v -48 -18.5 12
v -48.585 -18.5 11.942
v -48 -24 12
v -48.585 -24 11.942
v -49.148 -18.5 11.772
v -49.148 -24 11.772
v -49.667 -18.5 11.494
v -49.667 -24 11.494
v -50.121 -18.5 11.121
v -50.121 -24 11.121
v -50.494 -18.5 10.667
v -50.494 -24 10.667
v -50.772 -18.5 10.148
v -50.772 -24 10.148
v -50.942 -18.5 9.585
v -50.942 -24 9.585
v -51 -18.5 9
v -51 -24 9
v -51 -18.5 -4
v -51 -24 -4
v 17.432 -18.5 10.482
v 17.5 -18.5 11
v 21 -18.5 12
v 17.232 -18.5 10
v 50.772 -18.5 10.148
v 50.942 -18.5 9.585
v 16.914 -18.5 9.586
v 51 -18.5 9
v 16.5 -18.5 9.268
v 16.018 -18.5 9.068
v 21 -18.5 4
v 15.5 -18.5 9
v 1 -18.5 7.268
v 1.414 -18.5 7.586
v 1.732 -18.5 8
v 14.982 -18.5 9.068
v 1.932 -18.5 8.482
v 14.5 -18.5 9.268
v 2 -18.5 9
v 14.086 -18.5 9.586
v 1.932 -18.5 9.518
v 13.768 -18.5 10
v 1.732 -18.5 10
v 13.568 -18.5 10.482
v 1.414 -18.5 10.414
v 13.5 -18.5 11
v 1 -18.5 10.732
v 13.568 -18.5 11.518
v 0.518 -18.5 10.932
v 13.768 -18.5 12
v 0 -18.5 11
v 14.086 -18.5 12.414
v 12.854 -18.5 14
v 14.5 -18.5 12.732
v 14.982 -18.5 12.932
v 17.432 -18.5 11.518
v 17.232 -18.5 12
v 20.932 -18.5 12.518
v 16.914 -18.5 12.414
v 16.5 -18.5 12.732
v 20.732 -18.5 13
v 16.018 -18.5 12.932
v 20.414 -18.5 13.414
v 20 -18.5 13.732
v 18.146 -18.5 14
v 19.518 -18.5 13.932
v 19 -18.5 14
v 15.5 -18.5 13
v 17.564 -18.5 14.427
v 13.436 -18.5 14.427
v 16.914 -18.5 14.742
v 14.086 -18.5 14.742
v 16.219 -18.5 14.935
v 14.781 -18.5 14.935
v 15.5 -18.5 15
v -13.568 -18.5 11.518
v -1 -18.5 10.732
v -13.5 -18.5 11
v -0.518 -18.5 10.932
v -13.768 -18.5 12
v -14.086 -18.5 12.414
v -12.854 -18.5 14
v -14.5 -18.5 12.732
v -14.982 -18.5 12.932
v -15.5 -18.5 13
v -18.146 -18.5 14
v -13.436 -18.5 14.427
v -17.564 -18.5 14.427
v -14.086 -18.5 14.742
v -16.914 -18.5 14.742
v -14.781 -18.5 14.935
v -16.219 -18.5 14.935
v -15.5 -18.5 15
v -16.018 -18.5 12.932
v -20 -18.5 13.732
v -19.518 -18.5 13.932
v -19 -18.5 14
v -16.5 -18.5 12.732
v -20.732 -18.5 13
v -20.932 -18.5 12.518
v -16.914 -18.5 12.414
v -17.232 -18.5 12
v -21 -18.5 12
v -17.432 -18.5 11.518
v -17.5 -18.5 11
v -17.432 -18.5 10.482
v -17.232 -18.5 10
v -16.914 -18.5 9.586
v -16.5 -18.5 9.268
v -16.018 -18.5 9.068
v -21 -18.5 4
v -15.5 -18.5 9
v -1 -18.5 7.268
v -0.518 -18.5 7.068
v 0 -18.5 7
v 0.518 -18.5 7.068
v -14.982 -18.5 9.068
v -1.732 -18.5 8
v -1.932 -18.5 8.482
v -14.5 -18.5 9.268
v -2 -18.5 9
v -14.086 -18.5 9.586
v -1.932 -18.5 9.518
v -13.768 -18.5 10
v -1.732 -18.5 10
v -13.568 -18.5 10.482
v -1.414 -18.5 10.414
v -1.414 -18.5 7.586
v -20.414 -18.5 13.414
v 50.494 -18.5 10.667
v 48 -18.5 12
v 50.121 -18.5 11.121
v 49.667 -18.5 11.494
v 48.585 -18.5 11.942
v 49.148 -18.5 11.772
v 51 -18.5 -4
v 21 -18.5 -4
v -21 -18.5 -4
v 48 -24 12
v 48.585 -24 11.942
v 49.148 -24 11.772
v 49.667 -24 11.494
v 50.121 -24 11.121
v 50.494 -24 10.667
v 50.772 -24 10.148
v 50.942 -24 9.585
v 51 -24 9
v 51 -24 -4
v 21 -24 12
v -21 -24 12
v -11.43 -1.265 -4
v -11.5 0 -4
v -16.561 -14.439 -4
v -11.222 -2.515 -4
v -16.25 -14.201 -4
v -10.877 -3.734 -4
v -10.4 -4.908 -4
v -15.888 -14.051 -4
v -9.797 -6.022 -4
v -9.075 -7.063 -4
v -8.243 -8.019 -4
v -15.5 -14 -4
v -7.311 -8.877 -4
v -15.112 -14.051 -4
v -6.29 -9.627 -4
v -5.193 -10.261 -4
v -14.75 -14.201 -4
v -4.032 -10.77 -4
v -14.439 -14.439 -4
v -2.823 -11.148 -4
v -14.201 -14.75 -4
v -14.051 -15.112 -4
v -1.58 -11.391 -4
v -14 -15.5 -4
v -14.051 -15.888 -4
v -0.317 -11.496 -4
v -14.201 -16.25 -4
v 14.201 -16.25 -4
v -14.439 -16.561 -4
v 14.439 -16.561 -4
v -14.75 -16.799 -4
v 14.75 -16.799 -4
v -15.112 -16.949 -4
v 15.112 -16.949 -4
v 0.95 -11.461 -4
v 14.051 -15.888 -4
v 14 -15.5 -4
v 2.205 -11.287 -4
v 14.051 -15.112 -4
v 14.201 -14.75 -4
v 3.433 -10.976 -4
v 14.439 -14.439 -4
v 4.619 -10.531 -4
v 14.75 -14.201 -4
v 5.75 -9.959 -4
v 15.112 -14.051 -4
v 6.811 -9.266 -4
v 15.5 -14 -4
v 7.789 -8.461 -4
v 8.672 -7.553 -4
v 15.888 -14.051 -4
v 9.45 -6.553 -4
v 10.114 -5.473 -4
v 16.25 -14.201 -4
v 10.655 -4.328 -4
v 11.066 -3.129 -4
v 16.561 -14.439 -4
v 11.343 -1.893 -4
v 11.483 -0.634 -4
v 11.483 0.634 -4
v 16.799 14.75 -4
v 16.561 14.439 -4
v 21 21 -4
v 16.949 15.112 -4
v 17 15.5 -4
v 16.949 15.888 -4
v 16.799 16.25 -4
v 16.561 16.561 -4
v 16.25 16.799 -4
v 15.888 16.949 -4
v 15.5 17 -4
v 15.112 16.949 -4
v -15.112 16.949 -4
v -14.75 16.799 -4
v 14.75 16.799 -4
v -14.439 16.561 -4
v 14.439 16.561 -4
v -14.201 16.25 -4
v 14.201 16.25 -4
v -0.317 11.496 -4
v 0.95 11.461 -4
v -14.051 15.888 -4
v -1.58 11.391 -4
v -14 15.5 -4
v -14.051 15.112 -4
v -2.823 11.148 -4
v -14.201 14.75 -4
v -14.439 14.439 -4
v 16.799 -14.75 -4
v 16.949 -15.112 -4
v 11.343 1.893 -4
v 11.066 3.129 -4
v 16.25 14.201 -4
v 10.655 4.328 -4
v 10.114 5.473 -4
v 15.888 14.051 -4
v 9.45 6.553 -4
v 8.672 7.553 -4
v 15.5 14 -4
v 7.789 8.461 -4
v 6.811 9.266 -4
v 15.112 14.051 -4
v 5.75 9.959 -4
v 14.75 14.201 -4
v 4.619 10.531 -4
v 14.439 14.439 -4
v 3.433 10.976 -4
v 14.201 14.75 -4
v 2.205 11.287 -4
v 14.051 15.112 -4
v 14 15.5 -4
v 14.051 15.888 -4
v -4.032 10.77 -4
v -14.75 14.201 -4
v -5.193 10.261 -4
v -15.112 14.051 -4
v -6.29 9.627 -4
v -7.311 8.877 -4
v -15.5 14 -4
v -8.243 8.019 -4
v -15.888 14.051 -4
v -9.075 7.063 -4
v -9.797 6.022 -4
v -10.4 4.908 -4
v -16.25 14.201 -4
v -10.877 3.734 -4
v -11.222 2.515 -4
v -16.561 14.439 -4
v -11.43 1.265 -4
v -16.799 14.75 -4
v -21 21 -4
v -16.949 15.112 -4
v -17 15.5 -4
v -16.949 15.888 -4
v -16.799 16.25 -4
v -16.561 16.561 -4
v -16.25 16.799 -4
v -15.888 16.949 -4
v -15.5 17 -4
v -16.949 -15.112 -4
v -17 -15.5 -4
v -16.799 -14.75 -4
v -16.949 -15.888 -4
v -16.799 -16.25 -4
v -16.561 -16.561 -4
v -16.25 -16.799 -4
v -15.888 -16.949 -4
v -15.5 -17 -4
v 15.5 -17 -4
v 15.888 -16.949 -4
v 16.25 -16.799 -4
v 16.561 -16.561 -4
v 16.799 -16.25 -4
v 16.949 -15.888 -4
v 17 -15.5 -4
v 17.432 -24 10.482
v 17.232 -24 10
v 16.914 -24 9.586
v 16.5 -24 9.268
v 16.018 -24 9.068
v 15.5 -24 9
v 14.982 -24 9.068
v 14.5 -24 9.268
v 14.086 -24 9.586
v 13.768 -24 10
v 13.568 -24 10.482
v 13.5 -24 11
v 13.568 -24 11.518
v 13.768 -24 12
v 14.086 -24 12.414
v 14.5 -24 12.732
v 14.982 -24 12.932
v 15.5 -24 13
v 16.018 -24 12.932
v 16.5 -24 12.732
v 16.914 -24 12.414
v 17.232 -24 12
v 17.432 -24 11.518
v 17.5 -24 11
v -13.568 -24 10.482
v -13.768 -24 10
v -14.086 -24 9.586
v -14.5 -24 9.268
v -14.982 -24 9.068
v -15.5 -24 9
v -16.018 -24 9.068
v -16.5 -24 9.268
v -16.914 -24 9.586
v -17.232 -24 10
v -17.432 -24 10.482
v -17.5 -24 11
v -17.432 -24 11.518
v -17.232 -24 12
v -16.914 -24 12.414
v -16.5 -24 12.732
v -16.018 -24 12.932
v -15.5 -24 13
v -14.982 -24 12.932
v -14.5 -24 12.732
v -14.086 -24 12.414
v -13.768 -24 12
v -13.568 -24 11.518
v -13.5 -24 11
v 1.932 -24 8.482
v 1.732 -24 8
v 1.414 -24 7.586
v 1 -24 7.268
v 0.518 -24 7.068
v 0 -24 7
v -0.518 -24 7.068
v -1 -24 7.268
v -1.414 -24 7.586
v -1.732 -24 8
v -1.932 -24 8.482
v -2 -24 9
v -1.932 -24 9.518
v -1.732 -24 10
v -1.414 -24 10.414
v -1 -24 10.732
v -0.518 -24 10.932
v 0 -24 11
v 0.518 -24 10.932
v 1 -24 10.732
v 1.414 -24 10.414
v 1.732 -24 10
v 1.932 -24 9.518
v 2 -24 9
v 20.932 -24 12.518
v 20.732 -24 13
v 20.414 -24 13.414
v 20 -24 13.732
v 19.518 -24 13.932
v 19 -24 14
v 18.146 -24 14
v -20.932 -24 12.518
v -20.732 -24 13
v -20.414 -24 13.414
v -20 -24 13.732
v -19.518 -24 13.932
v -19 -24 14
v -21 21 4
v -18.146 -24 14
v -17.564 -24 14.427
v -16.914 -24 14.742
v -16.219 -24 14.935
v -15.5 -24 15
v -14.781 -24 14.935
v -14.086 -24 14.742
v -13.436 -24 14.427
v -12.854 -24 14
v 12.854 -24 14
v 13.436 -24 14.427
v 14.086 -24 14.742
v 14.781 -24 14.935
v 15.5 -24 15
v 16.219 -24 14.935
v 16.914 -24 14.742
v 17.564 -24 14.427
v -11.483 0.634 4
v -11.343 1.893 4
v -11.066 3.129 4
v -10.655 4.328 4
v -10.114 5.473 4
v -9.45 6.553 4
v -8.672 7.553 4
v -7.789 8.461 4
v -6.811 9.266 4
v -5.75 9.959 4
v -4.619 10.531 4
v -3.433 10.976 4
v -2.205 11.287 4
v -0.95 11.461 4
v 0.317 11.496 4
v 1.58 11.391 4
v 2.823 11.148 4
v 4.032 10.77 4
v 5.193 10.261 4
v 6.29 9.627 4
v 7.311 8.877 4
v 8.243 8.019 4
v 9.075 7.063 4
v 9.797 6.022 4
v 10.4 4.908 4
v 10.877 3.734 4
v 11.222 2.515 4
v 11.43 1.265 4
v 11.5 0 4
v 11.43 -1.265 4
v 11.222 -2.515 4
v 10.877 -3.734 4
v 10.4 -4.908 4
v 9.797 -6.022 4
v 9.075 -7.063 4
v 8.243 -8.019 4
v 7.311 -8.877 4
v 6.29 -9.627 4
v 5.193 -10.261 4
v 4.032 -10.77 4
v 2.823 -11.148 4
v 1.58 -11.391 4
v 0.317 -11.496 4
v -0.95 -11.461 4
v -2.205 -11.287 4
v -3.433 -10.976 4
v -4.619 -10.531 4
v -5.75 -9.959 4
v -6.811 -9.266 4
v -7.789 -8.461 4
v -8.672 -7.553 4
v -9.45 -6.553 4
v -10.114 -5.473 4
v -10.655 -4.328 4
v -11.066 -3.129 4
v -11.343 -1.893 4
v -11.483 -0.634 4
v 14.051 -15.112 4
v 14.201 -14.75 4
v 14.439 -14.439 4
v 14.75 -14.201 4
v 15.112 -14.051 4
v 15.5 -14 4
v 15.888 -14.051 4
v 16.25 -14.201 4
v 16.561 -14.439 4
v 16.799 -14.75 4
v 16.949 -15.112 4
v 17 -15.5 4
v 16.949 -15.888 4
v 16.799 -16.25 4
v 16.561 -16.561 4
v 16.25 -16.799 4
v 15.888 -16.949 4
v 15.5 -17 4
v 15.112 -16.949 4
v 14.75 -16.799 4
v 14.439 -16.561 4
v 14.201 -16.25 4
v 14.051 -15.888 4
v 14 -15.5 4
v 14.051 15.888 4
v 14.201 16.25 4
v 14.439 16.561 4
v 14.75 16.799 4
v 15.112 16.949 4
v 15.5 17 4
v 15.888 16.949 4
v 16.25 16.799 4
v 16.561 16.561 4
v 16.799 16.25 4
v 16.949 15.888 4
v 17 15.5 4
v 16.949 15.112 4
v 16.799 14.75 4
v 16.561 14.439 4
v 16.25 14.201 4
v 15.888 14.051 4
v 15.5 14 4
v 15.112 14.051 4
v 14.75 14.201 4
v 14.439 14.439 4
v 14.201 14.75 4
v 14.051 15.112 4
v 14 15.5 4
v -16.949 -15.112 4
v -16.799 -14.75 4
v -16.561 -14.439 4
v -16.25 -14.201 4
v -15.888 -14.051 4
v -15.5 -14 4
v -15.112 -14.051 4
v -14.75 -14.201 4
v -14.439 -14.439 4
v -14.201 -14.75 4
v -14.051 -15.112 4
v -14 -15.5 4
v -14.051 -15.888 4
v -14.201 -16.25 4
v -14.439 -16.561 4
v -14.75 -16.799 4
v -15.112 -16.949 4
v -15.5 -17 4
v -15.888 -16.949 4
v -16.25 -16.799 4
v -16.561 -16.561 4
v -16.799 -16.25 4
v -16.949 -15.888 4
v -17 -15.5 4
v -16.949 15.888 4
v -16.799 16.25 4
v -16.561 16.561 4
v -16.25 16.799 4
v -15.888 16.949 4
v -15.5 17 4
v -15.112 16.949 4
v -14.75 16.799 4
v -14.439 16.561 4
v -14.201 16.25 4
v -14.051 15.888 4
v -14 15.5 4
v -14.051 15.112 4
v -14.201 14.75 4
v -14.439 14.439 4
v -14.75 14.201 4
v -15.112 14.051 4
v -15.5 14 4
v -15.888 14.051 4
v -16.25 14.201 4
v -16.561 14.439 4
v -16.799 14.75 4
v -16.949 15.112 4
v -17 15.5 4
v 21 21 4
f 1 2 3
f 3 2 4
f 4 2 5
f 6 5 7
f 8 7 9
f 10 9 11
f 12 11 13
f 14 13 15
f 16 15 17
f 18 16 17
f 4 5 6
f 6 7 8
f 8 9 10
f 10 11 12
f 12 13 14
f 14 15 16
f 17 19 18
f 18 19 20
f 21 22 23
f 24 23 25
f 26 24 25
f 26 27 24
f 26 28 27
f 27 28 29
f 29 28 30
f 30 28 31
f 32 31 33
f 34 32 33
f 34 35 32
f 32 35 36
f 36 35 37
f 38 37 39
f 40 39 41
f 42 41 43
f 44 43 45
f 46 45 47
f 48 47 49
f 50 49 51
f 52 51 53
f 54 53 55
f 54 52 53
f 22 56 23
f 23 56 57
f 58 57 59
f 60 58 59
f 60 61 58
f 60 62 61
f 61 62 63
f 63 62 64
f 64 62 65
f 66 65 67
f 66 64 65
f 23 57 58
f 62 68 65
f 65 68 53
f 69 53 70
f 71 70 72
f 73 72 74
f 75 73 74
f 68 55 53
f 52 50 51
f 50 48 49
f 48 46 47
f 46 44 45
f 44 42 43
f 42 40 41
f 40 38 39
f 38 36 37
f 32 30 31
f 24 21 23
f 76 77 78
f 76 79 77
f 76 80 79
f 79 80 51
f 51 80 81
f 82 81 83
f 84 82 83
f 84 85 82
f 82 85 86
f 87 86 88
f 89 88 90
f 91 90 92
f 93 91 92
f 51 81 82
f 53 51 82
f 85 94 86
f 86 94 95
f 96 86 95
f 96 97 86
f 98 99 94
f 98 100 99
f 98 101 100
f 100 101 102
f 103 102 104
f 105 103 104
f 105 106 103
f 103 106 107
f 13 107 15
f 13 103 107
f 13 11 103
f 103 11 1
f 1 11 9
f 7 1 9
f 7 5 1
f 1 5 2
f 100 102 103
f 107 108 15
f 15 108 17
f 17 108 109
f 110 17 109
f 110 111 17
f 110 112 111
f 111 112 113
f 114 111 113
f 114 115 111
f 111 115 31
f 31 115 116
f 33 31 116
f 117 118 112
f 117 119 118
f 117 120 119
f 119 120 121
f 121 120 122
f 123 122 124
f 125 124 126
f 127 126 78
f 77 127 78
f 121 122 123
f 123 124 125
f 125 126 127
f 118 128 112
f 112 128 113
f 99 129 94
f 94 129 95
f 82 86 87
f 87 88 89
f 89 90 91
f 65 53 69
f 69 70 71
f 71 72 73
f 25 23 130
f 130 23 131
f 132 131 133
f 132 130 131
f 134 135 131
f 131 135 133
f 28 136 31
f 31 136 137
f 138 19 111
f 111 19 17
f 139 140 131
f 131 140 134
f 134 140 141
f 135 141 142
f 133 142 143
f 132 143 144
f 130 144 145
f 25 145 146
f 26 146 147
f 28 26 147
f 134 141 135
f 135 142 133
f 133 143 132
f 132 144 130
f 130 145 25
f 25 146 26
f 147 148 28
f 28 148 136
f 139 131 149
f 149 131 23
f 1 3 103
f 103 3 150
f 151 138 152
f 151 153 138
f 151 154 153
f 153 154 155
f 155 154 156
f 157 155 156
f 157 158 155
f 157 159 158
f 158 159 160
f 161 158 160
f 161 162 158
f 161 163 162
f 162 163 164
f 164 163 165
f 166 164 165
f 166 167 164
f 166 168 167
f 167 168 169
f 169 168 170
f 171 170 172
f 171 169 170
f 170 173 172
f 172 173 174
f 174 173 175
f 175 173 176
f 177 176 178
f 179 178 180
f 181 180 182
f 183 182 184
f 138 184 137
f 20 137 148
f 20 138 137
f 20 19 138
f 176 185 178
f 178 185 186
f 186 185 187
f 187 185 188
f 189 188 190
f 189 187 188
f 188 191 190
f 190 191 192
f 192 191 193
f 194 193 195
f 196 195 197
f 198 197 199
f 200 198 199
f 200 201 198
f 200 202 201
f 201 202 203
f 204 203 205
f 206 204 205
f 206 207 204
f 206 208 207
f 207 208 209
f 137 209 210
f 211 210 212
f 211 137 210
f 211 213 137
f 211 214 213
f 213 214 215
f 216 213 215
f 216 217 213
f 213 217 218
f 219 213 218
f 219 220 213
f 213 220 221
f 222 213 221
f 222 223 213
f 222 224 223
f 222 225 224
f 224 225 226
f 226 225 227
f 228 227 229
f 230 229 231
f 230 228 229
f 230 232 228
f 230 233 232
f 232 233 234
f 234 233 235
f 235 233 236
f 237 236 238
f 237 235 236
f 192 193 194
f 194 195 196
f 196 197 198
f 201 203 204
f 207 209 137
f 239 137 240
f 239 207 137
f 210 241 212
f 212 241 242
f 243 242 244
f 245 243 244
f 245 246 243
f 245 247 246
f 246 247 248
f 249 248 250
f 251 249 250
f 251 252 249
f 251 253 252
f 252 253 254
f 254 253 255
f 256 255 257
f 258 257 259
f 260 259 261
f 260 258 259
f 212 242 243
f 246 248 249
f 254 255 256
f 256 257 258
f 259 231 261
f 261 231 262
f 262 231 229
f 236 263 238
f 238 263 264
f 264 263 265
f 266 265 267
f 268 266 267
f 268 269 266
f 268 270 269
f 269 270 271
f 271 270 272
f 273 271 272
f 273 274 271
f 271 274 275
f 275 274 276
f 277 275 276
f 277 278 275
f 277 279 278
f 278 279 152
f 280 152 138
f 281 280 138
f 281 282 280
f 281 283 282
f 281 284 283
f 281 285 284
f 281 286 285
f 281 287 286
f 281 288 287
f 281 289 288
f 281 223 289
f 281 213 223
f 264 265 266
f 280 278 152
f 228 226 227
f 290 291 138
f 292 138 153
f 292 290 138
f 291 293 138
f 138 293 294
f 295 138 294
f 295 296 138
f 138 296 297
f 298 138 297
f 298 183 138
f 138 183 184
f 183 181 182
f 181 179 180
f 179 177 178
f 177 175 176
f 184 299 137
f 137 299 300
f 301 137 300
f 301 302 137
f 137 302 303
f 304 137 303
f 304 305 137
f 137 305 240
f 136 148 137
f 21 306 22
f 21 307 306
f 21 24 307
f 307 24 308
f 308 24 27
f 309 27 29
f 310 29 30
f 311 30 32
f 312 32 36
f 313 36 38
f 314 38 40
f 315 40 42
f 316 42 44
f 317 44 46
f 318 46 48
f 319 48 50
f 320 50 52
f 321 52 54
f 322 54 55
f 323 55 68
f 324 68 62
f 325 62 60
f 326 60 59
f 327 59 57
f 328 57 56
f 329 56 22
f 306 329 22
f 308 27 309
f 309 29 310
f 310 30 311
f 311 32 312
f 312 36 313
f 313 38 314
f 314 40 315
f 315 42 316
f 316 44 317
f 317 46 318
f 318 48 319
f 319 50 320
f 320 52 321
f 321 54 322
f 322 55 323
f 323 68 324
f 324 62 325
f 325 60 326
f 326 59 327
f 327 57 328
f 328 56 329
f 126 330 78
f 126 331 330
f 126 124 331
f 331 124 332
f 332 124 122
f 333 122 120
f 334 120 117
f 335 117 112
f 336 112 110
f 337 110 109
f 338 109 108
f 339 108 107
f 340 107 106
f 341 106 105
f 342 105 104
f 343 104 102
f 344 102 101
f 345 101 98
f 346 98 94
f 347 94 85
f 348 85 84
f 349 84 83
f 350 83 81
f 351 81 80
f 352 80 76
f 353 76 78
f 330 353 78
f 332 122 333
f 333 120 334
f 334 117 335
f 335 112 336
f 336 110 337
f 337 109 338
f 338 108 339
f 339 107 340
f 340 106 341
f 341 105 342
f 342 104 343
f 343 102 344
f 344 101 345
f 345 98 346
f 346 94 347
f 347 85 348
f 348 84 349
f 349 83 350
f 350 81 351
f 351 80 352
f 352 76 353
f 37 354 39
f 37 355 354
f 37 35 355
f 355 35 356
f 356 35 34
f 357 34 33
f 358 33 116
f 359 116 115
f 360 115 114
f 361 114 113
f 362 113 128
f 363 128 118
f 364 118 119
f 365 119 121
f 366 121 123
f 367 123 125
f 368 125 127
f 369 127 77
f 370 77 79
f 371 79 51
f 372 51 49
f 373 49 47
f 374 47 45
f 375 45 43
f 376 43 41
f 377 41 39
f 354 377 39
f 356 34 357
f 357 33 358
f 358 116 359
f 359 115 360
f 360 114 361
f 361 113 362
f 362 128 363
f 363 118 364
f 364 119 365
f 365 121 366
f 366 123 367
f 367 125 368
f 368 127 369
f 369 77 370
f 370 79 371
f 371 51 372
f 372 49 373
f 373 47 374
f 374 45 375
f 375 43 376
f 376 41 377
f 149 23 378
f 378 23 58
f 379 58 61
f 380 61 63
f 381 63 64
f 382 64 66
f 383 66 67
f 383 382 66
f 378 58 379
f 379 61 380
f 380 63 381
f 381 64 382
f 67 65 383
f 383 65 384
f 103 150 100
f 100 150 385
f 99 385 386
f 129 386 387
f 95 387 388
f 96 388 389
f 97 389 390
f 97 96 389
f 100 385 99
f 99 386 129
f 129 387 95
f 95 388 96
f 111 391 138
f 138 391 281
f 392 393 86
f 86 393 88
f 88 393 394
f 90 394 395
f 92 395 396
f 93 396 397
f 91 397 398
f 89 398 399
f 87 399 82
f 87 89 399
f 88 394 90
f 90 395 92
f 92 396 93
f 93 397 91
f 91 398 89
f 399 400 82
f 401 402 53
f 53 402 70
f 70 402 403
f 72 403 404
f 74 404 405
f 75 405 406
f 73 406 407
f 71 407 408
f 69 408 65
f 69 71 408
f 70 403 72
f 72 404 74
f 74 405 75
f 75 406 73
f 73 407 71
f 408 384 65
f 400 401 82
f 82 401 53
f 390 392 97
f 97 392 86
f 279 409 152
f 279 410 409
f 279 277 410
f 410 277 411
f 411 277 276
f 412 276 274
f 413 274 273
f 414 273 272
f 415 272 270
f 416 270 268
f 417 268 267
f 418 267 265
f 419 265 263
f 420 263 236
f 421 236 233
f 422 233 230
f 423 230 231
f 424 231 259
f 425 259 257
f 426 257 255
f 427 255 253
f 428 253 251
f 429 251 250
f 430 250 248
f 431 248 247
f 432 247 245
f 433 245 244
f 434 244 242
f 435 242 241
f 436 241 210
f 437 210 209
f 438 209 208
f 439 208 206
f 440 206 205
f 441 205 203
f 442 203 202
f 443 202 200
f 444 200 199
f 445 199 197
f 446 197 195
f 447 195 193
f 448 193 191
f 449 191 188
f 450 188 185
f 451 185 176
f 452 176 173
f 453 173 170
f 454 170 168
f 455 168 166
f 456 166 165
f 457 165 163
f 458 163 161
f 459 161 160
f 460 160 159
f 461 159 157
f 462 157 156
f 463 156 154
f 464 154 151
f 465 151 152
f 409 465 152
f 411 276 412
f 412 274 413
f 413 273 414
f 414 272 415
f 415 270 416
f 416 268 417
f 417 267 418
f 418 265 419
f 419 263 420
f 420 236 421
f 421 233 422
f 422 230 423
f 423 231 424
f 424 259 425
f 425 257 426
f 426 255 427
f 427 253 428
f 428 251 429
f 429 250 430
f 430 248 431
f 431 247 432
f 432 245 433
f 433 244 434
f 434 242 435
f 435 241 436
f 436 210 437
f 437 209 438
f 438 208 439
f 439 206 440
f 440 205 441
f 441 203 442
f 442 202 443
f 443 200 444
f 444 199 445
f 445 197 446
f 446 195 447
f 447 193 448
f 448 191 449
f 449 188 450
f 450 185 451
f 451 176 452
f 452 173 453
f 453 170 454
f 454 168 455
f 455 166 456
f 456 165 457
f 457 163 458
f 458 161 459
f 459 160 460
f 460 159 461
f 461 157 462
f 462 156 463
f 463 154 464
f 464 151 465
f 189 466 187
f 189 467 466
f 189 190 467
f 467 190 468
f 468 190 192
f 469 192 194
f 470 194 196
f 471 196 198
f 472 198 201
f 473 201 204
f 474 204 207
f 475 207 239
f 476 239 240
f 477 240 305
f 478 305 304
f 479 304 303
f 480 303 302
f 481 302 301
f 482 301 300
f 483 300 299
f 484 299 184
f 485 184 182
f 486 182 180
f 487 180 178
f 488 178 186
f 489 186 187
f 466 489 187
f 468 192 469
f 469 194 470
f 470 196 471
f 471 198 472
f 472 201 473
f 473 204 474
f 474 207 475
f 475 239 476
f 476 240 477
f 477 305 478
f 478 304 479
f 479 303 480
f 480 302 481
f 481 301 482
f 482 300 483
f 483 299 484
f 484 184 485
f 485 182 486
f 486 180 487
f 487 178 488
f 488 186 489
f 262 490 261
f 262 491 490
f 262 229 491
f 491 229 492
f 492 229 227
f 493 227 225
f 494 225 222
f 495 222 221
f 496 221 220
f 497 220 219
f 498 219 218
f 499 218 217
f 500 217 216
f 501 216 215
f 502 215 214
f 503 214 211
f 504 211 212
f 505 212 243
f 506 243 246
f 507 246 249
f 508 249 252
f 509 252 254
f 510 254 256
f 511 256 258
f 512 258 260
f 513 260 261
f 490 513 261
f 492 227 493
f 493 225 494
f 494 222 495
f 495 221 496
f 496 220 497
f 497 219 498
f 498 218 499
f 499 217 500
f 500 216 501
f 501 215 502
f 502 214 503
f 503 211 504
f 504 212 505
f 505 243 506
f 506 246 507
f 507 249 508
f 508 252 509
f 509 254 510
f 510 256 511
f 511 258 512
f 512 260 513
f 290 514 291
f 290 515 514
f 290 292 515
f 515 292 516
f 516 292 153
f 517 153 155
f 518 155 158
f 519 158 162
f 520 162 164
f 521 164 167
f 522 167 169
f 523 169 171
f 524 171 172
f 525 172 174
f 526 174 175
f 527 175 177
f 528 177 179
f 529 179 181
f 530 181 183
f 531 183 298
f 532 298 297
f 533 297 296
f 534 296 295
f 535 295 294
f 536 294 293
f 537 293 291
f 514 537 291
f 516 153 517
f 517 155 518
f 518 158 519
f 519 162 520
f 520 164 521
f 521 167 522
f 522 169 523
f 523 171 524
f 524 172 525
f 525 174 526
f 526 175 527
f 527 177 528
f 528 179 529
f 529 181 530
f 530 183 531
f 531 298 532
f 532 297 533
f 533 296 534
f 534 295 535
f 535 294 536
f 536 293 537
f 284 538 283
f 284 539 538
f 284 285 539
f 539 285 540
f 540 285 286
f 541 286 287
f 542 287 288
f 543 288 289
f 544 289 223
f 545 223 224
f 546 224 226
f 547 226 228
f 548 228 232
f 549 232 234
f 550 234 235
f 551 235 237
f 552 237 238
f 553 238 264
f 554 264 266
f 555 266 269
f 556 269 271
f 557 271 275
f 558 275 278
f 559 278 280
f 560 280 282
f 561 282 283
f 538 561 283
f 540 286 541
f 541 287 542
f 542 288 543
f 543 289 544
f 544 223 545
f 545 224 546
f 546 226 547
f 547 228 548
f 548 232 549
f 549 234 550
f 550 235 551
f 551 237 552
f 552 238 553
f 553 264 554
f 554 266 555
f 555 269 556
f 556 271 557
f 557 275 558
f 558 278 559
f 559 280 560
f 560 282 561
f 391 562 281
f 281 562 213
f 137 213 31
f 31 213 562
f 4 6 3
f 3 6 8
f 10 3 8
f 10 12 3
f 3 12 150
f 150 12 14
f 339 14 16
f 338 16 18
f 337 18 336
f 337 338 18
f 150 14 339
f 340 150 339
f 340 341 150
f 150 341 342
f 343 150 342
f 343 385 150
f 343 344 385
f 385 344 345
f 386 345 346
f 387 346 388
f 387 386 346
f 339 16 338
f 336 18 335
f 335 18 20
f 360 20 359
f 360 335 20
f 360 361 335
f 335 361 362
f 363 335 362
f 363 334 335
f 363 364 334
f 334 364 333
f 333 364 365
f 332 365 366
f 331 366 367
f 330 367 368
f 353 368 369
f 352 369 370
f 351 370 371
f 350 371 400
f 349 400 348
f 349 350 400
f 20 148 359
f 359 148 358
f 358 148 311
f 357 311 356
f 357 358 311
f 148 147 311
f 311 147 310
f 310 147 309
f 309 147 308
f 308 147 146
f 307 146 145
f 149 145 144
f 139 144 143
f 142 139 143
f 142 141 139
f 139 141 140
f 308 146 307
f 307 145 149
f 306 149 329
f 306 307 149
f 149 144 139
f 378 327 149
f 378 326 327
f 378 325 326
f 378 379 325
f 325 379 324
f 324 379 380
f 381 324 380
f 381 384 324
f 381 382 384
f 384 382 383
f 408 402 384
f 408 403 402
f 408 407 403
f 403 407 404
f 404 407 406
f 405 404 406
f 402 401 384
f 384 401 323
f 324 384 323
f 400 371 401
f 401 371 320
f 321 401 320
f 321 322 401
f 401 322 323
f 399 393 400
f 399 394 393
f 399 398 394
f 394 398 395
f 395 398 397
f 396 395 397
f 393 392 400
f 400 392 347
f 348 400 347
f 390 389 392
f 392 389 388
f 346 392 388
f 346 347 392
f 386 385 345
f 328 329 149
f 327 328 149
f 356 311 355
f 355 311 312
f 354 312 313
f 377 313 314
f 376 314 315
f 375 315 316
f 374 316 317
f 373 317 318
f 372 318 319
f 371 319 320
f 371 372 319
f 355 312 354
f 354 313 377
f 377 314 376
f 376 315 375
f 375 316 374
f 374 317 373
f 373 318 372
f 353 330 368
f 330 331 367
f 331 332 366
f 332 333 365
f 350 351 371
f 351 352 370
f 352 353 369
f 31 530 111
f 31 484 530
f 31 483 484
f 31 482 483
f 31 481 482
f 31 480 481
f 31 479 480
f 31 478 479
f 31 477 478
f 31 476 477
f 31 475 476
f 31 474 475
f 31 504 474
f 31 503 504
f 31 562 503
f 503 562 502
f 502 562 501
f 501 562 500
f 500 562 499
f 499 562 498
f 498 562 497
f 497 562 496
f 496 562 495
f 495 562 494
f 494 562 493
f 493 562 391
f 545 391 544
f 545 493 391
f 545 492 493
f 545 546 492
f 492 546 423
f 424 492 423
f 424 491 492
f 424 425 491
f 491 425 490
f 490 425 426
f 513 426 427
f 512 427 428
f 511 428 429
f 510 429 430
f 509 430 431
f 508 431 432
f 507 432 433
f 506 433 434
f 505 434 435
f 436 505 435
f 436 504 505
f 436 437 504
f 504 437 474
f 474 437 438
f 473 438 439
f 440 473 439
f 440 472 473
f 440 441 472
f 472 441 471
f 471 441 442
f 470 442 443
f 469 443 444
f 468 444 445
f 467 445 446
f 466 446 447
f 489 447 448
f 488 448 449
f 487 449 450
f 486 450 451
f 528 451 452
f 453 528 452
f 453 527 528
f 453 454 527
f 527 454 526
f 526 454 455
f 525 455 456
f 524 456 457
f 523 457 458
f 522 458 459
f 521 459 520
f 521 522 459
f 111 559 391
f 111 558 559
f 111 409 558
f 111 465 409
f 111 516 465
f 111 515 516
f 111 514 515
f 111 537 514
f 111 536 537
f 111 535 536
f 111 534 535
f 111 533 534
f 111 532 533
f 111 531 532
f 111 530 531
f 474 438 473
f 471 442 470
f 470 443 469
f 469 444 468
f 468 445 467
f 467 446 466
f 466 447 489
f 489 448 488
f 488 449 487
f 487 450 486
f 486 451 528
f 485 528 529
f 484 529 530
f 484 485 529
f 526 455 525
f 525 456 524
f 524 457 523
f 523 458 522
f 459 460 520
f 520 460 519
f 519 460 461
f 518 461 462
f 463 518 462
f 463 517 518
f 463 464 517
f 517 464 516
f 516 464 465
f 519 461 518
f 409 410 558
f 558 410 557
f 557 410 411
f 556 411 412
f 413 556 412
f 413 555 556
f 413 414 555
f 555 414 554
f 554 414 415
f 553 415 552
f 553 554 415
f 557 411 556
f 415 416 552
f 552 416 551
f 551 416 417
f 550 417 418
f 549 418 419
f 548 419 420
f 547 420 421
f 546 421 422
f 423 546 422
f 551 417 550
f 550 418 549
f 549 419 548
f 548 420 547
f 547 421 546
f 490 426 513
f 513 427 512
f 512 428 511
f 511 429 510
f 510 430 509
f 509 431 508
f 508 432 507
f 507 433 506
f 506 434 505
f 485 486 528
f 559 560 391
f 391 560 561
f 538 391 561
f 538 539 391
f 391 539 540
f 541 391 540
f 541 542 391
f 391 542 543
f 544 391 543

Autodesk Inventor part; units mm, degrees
ref_plane "YZ Plane" through (0, 0, 0) normal (1, 0, 0) x (0, 1, 0)
ref_plane "XZ Plane" through (0, 0, 0) normal (0, 1, 0) x (-1, 0, 0)
ref_plane "XY Plane" through (0, 0, 0) normal (0, 0, 1) x (1, 0, 0)
sketch "Sketch1" plane through (0, 0, 0) normal (0, 0, 1) x (1, 0, 0)
  circle A0 centre (0, 0) radius 11.5
  circle A1 centre (-15.5, 15.5) radius 1.5
  circle A2 centre (-15.5, -15.5) radius 1.5
  circle A3 centre (15.5, 15.5) radius 1.5
  circle A4 centre (15.5, -15.5) radius 1.5
  line L0 (-21, -24) -> (21, -24)
  line L1 (0, 20) -> (4.5462, 20) construction
  line L2 (-21, 21) -> (-1, 21)
  line L3 (1, 21) -> (21, 21)
  line L4 (-21, 21) -> (-21, 5.9161)
  line L5 (-21, -5.9161) -> (-21, -24)
  line L6 (21, 21) -> (21, 5.9161)
  line L7 (21, -5.9161) -> (21, -24)
  line L8 (-1.865, 21) -> (1.6498, 21)
  line L9 (-21, 8.451) -> (-21, -8.8551)
  line L10 (21, 10.9387) -> (21, -8.8551)
  dimension "d0" = 23
  dimension "d1" = 3
  dimension "d2" = 3
  dimension "d3" = 24
  dimension "d5" = 8.5
extrude "Extrusion1" add sketch "Sketch1" along normal blind 4
sketch "Sketch2" plane through (0, 0, 4) normal (0, 0, 1) x (1, 0, 0)
  line L0 (-21, -24) -> (21, -24) projected
  line L1 (21, -24) -> (21, 21) projected
  line L2 (-21, -24) -> (21, -24)
  line L3 (21, -24) -> (21, -18.5)
  line L4 (21, -18.5) -> (-21, -18.5)
  line L5 (-21, -18.5) -> (-21, -24)
  dimension "d9" = 5.5
extrude "Extrusion2" add sketch "Sketch2" along normal blind 10
sketch "Sketch3" plane through (-21, -24, 0) normal (0, -1, 0) x (1, 0, 0)
  line L0 (42, 0) -> (42, 14) projected
  line L1 (0, 0) -> (0, 14) projected
  circle A0 centre (5.5, 11) radius 2
  circle A1 centre (36.5, 11) radius 2
  line L2 (0, 4) -> (42, 4) projected
  circle A2 centre (21, 9) radius 2
  line L3 (0, 14) -> (42, 14) projected
  point P0 (21, 0)
  dimension "d12" = 4
  dimension "d13" = 4
  dimension "d16" = 5.5
  dimension "d17" = 5.5
  dimension "d18" = 7
  dimension "d19" = 7
  dimension "d27" = 4
  dimension "d28" = 5
sketch "Sketch4" plane through (-21, -24, 0) normal (0, -1, 0) x (1, 0, 0)
  circle A0 centre (5.5, 11) radius 2 projected
  circle A1 centre (36.5, 11) radius 2 projected
  arc A2 (8.1458, 14) -> (2.8542, 14) centre (5.5, 11) ccw
  arc A3 (39.1458, 14) -> (33.8542, 14) centre (36.5, 11) ccw
  line L0 (42, 14) -> (0, 14) projected
  line L1 (2.8542, 14) -> (8.1458, 14)
  line L2 (33.8542, 14) -> (39.1458, 14)
  point P0 (21, 0)
  dimension "d22" = 8
  dimension "d23" = 8
extrude "Extrusion4" add sketch "Sketch4" against normal blind 5.5 contours L0 A2 | A3 L0
fillet "Fillet1" radius 2 2 edges at (-21, -21.25, 14) (21, -21.25, 14)
extrude "Extrusion5" cut sketch "Sketch3" against normal blind 5.5 contours A0 | A1 | A2
sketch "Sketch5" plane through (0, 0, 0) normal (0, 0, -1) x (-1, 0, 0)
  circle A0 centre (0, 0) radius 11.5 projected
  circle A1 centre (-15.5, -15.5) radius 1.5 projected
  circle A2 centre (-15.5, 15.5) radius 1.5 projected
  circle A3 centre (15.5, -15.5) radius 1.5 projected
  circle A4 centre (15.5, 15.5) radius 1.5 projected
  line L0 (-21, -24) -> (21, -24) projected
  line L1 (21, -24) -> (21, 21) projected
  line L2 (21, 21) -> (-21, 21) projected
  line L3 (-21, 21) -> (-21, -24) projected
extrude "Extrusion6" add sketch "Sketch5" along normal blind 4
sketch "Sketch6" plane through (-21, -18.5, 4) normal (-1, 0, 0) x (0, 0, 1)
  line L0 (-8, -5.5) -> (-8, 39.5) projected
  line L1 (8, -5.5) -> (-8, -5.5) projected
  line L2 (8, -5.5) -> (-8, -5.5)
  line L3 (-8, -5.5) -> (-8, 0)
  line L4 (-8, 0) -> (8, 0)
  line L5 (8, 0) -> (8, -5.5)
  point P0 (-4, 18.5)
extrude "Extrusion7" add sketch "Sketch6" along normal blind 30
sketch "Sketch7" plane through (21, -18.5, 4) normal (1, 0, 0) x (0, 0, -1)
  line L0 (-8, -5.5) -> (-8, 0) projected
  line L1 (8, -5.5) -> (-8, -5.5) projected
  line L2 (-8, 0) -> (8, 0)
  line L3 (8, 0) -> (8, -5.5)
  line L4 (8, -5.5) -> (-8, -5.5)
  line L5 (-8, -5.5) -> (-8, 0)
  point P0 (4, 18.5)
extrude "Extrusion8" add sketch "Sketch7" along normal blind 30
fillet "Fillet2" radius 3 2 edges at (51, -21.25, 12) (-51, -21.25, 12)
properties part number "StepperMotorPlate" material "PPS Plastic"
